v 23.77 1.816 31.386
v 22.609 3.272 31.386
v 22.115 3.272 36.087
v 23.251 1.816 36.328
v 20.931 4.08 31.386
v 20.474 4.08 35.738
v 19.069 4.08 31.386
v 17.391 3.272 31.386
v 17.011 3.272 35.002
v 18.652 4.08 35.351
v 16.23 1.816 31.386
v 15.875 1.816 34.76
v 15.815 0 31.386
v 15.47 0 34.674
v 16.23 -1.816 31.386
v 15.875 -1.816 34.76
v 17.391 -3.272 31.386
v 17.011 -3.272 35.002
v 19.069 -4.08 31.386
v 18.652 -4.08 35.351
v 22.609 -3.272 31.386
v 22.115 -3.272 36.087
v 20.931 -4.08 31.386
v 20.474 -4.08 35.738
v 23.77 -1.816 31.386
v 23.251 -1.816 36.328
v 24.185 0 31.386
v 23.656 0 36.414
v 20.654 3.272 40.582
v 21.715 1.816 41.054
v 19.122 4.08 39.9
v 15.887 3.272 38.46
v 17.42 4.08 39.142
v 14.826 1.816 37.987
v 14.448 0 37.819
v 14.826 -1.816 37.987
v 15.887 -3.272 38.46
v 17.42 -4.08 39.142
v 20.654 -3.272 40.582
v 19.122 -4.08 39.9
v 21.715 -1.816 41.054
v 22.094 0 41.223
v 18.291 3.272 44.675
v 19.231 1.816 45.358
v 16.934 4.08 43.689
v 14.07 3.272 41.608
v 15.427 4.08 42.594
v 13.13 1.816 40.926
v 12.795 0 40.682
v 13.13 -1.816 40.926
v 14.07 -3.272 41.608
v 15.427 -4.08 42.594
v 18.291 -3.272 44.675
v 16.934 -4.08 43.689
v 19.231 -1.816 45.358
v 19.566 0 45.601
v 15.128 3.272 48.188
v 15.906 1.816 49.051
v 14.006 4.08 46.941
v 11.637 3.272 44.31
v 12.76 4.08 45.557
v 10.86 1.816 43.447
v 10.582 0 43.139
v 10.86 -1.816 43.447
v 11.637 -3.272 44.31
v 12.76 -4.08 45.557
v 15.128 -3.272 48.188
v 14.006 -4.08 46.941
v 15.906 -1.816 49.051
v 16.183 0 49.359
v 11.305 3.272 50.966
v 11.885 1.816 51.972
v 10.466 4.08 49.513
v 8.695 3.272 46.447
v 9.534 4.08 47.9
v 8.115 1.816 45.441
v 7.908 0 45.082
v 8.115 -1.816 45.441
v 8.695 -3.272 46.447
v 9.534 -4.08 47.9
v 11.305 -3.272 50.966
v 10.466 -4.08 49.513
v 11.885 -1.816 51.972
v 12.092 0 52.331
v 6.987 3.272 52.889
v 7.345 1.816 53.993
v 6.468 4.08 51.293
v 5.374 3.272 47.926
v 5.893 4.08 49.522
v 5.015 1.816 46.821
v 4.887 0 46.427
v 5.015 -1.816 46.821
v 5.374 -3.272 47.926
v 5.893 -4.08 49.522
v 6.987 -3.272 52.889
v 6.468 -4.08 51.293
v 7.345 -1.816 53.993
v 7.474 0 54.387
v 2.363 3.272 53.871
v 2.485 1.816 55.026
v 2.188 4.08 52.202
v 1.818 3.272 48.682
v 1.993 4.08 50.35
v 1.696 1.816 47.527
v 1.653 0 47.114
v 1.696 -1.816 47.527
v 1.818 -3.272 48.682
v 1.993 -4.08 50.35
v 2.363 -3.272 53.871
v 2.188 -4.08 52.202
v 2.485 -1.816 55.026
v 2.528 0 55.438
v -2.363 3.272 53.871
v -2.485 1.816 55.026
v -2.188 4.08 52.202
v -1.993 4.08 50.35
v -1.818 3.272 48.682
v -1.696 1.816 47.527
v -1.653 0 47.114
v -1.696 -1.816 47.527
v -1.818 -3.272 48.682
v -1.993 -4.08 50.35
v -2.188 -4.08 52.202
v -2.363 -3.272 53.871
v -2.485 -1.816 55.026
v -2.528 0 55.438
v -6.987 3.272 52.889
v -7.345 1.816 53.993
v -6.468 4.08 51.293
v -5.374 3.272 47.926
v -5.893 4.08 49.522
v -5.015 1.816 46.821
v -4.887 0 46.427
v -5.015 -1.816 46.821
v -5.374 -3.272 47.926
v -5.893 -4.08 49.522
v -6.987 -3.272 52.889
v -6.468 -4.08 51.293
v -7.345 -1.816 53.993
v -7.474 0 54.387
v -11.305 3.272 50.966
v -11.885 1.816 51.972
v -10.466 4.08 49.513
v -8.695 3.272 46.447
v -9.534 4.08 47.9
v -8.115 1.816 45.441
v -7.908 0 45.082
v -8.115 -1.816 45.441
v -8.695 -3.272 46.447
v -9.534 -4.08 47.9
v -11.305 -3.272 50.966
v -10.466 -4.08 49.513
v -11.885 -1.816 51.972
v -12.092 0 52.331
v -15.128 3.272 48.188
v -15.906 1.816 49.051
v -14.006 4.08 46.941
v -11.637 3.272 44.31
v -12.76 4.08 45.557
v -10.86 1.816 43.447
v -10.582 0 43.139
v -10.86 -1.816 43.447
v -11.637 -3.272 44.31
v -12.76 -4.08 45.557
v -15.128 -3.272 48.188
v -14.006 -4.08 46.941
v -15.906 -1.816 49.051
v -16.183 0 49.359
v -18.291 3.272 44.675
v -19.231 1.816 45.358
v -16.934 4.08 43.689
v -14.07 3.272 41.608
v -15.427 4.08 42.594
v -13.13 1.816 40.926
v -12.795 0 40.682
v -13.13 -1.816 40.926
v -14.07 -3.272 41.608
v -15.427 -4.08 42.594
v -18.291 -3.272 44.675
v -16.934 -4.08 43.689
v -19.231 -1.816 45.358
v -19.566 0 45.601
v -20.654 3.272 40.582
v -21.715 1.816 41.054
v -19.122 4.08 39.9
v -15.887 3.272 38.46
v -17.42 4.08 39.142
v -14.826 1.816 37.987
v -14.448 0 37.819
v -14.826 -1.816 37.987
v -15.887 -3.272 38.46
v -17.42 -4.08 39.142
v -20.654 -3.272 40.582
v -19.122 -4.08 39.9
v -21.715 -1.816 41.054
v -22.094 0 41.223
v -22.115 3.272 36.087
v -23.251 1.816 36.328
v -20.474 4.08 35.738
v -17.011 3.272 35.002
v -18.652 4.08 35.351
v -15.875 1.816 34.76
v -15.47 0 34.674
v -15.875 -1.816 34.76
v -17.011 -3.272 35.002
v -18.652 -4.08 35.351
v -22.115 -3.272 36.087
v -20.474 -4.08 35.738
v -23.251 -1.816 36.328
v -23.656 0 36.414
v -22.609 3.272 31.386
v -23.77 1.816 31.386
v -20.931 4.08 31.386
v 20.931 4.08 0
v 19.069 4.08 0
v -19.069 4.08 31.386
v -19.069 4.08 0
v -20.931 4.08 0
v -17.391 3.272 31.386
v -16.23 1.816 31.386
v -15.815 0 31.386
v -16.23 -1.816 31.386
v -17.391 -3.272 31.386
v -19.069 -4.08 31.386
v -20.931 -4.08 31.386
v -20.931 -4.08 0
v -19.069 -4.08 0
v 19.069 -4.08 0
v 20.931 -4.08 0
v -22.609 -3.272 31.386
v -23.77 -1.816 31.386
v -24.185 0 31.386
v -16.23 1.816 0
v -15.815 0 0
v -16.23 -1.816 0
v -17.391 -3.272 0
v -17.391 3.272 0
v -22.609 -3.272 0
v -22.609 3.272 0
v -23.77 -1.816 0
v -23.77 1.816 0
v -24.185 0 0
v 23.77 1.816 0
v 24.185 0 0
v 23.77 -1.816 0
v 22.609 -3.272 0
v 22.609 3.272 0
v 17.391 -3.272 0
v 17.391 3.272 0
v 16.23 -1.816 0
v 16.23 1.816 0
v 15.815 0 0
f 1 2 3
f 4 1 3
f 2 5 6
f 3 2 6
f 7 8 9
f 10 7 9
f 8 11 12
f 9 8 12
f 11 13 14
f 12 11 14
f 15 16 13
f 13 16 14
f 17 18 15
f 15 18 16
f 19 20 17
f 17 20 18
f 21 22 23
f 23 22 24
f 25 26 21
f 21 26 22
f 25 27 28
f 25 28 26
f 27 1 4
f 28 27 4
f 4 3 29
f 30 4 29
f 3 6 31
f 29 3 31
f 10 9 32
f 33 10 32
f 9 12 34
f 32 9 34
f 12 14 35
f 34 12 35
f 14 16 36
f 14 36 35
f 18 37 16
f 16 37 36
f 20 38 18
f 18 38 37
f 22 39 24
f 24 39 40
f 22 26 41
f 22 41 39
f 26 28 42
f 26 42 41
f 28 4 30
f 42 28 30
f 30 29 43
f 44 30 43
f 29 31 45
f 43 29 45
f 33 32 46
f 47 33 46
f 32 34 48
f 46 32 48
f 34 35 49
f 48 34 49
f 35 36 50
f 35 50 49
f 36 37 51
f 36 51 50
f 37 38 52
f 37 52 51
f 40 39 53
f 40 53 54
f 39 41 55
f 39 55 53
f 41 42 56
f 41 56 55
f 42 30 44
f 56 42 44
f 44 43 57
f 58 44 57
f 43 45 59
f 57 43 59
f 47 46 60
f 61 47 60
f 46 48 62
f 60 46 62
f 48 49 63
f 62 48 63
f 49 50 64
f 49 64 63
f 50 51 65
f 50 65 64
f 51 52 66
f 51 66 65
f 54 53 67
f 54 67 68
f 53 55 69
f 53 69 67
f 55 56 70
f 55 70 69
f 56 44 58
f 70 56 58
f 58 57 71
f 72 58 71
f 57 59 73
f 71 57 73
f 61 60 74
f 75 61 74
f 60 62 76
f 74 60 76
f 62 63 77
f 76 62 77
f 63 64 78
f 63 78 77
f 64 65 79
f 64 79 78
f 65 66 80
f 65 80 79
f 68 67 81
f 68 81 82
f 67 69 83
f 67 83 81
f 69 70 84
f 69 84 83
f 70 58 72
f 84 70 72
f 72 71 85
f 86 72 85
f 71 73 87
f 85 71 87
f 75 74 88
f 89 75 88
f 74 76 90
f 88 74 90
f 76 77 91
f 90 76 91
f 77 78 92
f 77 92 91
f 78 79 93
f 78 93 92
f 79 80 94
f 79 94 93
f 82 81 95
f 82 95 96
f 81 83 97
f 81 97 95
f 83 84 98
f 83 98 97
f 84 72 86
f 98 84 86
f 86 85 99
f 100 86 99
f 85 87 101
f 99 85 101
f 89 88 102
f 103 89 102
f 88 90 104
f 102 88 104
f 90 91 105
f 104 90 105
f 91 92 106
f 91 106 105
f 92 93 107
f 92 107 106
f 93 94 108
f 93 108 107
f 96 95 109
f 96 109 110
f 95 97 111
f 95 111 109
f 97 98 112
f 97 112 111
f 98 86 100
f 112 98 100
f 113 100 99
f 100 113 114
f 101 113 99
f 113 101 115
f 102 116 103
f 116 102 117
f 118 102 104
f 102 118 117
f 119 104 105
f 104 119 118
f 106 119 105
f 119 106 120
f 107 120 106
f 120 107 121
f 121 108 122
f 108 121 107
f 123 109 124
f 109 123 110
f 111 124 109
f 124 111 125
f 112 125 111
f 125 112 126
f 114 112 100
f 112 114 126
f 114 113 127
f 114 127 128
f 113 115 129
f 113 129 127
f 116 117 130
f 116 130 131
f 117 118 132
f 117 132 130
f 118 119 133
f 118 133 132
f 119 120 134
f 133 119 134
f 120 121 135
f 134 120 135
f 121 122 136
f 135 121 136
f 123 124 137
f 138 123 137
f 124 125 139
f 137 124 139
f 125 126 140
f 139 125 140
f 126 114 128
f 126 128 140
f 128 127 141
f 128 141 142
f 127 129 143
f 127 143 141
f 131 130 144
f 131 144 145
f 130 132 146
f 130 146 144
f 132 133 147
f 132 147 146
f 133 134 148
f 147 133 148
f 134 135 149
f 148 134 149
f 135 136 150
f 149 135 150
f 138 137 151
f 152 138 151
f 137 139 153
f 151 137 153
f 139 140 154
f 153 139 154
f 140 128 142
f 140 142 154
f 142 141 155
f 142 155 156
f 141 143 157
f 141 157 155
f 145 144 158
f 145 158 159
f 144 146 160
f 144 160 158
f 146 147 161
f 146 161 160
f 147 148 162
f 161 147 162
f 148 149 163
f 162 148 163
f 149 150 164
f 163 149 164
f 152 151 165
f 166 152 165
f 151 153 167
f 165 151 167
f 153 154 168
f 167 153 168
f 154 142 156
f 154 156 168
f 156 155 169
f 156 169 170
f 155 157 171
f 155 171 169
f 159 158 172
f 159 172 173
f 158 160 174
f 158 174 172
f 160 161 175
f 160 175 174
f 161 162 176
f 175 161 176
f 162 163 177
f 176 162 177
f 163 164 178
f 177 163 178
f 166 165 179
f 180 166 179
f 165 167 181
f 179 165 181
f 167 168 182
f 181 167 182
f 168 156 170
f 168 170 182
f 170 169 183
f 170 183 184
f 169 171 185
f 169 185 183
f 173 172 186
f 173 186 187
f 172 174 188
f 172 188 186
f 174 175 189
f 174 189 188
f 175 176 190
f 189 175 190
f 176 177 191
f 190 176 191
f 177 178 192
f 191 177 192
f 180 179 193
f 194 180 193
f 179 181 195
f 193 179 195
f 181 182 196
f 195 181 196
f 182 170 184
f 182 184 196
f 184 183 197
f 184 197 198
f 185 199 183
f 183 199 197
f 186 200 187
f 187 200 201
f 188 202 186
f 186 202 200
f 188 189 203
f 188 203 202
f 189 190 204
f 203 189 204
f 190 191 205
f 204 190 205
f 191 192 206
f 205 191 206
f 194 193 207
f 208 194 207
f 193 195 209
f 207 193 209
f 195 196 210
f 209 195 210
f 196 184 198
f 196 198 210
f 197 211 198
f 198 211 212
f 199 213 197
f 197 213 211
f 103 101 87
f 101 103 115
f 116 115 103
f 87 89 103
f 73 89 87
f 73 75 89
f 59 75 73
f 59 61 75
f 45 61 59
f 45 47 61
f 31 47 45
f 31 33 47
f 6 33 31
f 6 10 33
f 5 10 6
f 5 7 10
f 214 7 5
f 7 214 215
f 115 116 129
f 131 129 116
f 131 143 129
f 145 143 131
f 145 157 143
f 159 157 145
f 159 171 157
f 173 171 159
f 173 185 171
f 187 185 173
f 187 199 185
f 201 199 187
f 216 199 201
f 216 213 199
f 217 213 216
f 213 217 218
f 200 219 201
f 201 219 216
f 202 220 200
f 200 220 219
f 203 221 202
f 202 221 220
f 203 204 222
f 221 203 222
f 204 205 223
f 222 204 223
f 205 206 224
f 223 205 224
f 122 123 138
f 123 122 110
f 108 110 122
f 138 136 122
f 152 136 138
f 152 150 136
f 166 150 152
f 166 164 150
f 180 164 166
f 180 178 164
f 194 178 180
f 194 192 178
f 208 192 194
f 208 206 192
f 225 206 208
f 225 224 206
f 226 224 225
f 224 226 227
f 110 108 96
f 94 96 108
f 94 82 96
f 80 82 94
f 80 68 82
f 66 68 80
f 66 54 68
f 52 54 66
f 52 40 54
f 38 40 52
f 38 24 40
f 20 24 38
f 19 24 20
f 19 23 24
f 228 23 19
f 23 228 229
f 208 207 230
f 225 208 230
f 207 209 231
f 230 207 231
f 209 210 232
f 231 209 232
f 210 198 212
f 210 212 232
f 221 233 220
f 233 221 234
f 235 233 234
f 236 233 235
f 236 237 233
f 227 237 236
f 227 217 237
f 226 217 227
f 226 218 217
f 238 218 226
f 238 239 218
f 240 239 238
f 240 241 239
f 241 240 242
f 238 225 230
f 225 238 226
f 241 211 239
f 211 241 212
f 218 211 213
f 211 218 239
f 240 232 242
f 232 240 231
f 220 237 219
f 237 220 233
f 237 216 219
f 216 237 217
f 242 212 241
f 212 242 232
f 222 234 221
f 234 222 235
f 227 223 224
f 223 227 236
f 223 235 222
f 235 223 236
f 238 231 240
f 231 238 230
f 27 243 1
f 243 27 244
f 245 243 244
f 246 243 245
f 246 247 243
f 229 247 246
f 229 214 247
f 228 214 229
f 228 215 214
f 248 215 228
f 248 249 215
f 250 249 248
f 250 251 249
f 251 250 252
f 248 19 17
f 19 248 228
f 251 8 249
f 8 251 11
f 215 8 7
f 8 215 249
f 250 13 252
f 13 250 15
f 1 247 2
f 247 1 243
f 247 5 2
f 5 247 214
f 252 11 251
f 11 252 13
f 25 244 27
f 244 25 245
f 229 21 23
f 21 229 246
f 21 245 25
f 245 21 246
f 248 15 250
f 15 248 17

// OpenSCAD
/* doodle-meta {"version":1,"parameters":{"bend_radius":{"label":"Bend Radius","description":"Radius of the 180-degree arc bend","unit":"mm","feature":"bend"},"leg_length":{"label":"Leg Length","description":"Length of the straight vertical legs","unit":"mm","feature":"legs"},"bar_diameter":{"label":"Bar Diameter","description":"Diameter of the circular cross-section of the handle bar","unit":"mm","feature":"cross_section"}},"features":{"bend":{"kind":"region","label":"Arc Bend","min":[0,0,30],"max":[28.6,8,54]},"legs":{"kind":"region","label":"Straight Legs","min":[0,0,0],"max":[28.6,8,30]},"cross_section":{"kind":"region","label":"Cross Section","min":[0,0,0],"max":[8,8,8]}}} */

// Parameters
bend_radius = 20;
leg_length = 31.385978640244247;
bar_diameter = 8.369594304065133;

// Derived dimensions
// The handle is symmetric about the Z axis (vertical centerline).
// The bend is a 180-degree arc. The legs extend downwards from the ends of the arc.
// The arc lies in the XZ plane (front view).
// The legs are parallel to the Z axis.
// The cross-section is circular with diameter bar_diameter.

// The center of the arc is at (0, 0, leg_length) relative to the bottom of the legs.
// The legs go from Z=0 to Z=leg_length.
// The arc connects the tops of the legs.
// The arc goes from X = -bend_radius to X = +bend_radius.
// The top of the arc is at Z = leg_length + bend_radius.
// The total height is leg_length + bend_radius + bar_diameter/2.

// To build this in OpenSCAD, we use rotate_extrude for the bend and cylinders for the legs.
// rotate_extrude rotates around the Z axis.
// We define the profile in the XZ plane (which is the plane of the U-shape).
// The profile is a circle of radius bar_diameter/2 centered at (bend_radius, 0) in the XZ plane?
// No, rotate_extrude takes a 2D polygon in the XY plane and rotates it around Z.
// So we define the profile in the XY plane.
// The profile is a circle of radius bar_diameter/2 centered at (bend_radius, 0).
// rotate_extrude(angle=180) creates a half-torus.
// This half-torus lies in the XY plane (flat).
// We need to rotate it 90 degrees around X to make it stand up in the XZ plane.
// rotate([90, 0, 0])

module handle_body() {
    // The bend (torus segment)
    // Create a half-torus using rotate_extrude
    // Profile: circle in XY plane, centered at (bend_radius, 0), radius bar_diameter/2
    // Rotate 180 degrees around Z
    // Then rotate 90 degrees around X to align with XZ plane
    // Then translate up by leg_length
    
    translate([0, 0, leg_length])
        rotate([90, 0, 0])
            rotate_extrude(angle=180)
                translate([bend_radius, 0])
                    circle(r=bar_diameter/2);
    
    // The legs
    // Left leg at X = -bend_radius
    translate([-bend_radius, 0, 0])
        cylinder(h=leg_length, r=bar_diameter/2);
        
    // Right leg at X = +bend_radius
    translate([bend_radius, 0, 0])
        cylinder(h=leg_length, r=bar_diameter/2);
}

handle_body();
